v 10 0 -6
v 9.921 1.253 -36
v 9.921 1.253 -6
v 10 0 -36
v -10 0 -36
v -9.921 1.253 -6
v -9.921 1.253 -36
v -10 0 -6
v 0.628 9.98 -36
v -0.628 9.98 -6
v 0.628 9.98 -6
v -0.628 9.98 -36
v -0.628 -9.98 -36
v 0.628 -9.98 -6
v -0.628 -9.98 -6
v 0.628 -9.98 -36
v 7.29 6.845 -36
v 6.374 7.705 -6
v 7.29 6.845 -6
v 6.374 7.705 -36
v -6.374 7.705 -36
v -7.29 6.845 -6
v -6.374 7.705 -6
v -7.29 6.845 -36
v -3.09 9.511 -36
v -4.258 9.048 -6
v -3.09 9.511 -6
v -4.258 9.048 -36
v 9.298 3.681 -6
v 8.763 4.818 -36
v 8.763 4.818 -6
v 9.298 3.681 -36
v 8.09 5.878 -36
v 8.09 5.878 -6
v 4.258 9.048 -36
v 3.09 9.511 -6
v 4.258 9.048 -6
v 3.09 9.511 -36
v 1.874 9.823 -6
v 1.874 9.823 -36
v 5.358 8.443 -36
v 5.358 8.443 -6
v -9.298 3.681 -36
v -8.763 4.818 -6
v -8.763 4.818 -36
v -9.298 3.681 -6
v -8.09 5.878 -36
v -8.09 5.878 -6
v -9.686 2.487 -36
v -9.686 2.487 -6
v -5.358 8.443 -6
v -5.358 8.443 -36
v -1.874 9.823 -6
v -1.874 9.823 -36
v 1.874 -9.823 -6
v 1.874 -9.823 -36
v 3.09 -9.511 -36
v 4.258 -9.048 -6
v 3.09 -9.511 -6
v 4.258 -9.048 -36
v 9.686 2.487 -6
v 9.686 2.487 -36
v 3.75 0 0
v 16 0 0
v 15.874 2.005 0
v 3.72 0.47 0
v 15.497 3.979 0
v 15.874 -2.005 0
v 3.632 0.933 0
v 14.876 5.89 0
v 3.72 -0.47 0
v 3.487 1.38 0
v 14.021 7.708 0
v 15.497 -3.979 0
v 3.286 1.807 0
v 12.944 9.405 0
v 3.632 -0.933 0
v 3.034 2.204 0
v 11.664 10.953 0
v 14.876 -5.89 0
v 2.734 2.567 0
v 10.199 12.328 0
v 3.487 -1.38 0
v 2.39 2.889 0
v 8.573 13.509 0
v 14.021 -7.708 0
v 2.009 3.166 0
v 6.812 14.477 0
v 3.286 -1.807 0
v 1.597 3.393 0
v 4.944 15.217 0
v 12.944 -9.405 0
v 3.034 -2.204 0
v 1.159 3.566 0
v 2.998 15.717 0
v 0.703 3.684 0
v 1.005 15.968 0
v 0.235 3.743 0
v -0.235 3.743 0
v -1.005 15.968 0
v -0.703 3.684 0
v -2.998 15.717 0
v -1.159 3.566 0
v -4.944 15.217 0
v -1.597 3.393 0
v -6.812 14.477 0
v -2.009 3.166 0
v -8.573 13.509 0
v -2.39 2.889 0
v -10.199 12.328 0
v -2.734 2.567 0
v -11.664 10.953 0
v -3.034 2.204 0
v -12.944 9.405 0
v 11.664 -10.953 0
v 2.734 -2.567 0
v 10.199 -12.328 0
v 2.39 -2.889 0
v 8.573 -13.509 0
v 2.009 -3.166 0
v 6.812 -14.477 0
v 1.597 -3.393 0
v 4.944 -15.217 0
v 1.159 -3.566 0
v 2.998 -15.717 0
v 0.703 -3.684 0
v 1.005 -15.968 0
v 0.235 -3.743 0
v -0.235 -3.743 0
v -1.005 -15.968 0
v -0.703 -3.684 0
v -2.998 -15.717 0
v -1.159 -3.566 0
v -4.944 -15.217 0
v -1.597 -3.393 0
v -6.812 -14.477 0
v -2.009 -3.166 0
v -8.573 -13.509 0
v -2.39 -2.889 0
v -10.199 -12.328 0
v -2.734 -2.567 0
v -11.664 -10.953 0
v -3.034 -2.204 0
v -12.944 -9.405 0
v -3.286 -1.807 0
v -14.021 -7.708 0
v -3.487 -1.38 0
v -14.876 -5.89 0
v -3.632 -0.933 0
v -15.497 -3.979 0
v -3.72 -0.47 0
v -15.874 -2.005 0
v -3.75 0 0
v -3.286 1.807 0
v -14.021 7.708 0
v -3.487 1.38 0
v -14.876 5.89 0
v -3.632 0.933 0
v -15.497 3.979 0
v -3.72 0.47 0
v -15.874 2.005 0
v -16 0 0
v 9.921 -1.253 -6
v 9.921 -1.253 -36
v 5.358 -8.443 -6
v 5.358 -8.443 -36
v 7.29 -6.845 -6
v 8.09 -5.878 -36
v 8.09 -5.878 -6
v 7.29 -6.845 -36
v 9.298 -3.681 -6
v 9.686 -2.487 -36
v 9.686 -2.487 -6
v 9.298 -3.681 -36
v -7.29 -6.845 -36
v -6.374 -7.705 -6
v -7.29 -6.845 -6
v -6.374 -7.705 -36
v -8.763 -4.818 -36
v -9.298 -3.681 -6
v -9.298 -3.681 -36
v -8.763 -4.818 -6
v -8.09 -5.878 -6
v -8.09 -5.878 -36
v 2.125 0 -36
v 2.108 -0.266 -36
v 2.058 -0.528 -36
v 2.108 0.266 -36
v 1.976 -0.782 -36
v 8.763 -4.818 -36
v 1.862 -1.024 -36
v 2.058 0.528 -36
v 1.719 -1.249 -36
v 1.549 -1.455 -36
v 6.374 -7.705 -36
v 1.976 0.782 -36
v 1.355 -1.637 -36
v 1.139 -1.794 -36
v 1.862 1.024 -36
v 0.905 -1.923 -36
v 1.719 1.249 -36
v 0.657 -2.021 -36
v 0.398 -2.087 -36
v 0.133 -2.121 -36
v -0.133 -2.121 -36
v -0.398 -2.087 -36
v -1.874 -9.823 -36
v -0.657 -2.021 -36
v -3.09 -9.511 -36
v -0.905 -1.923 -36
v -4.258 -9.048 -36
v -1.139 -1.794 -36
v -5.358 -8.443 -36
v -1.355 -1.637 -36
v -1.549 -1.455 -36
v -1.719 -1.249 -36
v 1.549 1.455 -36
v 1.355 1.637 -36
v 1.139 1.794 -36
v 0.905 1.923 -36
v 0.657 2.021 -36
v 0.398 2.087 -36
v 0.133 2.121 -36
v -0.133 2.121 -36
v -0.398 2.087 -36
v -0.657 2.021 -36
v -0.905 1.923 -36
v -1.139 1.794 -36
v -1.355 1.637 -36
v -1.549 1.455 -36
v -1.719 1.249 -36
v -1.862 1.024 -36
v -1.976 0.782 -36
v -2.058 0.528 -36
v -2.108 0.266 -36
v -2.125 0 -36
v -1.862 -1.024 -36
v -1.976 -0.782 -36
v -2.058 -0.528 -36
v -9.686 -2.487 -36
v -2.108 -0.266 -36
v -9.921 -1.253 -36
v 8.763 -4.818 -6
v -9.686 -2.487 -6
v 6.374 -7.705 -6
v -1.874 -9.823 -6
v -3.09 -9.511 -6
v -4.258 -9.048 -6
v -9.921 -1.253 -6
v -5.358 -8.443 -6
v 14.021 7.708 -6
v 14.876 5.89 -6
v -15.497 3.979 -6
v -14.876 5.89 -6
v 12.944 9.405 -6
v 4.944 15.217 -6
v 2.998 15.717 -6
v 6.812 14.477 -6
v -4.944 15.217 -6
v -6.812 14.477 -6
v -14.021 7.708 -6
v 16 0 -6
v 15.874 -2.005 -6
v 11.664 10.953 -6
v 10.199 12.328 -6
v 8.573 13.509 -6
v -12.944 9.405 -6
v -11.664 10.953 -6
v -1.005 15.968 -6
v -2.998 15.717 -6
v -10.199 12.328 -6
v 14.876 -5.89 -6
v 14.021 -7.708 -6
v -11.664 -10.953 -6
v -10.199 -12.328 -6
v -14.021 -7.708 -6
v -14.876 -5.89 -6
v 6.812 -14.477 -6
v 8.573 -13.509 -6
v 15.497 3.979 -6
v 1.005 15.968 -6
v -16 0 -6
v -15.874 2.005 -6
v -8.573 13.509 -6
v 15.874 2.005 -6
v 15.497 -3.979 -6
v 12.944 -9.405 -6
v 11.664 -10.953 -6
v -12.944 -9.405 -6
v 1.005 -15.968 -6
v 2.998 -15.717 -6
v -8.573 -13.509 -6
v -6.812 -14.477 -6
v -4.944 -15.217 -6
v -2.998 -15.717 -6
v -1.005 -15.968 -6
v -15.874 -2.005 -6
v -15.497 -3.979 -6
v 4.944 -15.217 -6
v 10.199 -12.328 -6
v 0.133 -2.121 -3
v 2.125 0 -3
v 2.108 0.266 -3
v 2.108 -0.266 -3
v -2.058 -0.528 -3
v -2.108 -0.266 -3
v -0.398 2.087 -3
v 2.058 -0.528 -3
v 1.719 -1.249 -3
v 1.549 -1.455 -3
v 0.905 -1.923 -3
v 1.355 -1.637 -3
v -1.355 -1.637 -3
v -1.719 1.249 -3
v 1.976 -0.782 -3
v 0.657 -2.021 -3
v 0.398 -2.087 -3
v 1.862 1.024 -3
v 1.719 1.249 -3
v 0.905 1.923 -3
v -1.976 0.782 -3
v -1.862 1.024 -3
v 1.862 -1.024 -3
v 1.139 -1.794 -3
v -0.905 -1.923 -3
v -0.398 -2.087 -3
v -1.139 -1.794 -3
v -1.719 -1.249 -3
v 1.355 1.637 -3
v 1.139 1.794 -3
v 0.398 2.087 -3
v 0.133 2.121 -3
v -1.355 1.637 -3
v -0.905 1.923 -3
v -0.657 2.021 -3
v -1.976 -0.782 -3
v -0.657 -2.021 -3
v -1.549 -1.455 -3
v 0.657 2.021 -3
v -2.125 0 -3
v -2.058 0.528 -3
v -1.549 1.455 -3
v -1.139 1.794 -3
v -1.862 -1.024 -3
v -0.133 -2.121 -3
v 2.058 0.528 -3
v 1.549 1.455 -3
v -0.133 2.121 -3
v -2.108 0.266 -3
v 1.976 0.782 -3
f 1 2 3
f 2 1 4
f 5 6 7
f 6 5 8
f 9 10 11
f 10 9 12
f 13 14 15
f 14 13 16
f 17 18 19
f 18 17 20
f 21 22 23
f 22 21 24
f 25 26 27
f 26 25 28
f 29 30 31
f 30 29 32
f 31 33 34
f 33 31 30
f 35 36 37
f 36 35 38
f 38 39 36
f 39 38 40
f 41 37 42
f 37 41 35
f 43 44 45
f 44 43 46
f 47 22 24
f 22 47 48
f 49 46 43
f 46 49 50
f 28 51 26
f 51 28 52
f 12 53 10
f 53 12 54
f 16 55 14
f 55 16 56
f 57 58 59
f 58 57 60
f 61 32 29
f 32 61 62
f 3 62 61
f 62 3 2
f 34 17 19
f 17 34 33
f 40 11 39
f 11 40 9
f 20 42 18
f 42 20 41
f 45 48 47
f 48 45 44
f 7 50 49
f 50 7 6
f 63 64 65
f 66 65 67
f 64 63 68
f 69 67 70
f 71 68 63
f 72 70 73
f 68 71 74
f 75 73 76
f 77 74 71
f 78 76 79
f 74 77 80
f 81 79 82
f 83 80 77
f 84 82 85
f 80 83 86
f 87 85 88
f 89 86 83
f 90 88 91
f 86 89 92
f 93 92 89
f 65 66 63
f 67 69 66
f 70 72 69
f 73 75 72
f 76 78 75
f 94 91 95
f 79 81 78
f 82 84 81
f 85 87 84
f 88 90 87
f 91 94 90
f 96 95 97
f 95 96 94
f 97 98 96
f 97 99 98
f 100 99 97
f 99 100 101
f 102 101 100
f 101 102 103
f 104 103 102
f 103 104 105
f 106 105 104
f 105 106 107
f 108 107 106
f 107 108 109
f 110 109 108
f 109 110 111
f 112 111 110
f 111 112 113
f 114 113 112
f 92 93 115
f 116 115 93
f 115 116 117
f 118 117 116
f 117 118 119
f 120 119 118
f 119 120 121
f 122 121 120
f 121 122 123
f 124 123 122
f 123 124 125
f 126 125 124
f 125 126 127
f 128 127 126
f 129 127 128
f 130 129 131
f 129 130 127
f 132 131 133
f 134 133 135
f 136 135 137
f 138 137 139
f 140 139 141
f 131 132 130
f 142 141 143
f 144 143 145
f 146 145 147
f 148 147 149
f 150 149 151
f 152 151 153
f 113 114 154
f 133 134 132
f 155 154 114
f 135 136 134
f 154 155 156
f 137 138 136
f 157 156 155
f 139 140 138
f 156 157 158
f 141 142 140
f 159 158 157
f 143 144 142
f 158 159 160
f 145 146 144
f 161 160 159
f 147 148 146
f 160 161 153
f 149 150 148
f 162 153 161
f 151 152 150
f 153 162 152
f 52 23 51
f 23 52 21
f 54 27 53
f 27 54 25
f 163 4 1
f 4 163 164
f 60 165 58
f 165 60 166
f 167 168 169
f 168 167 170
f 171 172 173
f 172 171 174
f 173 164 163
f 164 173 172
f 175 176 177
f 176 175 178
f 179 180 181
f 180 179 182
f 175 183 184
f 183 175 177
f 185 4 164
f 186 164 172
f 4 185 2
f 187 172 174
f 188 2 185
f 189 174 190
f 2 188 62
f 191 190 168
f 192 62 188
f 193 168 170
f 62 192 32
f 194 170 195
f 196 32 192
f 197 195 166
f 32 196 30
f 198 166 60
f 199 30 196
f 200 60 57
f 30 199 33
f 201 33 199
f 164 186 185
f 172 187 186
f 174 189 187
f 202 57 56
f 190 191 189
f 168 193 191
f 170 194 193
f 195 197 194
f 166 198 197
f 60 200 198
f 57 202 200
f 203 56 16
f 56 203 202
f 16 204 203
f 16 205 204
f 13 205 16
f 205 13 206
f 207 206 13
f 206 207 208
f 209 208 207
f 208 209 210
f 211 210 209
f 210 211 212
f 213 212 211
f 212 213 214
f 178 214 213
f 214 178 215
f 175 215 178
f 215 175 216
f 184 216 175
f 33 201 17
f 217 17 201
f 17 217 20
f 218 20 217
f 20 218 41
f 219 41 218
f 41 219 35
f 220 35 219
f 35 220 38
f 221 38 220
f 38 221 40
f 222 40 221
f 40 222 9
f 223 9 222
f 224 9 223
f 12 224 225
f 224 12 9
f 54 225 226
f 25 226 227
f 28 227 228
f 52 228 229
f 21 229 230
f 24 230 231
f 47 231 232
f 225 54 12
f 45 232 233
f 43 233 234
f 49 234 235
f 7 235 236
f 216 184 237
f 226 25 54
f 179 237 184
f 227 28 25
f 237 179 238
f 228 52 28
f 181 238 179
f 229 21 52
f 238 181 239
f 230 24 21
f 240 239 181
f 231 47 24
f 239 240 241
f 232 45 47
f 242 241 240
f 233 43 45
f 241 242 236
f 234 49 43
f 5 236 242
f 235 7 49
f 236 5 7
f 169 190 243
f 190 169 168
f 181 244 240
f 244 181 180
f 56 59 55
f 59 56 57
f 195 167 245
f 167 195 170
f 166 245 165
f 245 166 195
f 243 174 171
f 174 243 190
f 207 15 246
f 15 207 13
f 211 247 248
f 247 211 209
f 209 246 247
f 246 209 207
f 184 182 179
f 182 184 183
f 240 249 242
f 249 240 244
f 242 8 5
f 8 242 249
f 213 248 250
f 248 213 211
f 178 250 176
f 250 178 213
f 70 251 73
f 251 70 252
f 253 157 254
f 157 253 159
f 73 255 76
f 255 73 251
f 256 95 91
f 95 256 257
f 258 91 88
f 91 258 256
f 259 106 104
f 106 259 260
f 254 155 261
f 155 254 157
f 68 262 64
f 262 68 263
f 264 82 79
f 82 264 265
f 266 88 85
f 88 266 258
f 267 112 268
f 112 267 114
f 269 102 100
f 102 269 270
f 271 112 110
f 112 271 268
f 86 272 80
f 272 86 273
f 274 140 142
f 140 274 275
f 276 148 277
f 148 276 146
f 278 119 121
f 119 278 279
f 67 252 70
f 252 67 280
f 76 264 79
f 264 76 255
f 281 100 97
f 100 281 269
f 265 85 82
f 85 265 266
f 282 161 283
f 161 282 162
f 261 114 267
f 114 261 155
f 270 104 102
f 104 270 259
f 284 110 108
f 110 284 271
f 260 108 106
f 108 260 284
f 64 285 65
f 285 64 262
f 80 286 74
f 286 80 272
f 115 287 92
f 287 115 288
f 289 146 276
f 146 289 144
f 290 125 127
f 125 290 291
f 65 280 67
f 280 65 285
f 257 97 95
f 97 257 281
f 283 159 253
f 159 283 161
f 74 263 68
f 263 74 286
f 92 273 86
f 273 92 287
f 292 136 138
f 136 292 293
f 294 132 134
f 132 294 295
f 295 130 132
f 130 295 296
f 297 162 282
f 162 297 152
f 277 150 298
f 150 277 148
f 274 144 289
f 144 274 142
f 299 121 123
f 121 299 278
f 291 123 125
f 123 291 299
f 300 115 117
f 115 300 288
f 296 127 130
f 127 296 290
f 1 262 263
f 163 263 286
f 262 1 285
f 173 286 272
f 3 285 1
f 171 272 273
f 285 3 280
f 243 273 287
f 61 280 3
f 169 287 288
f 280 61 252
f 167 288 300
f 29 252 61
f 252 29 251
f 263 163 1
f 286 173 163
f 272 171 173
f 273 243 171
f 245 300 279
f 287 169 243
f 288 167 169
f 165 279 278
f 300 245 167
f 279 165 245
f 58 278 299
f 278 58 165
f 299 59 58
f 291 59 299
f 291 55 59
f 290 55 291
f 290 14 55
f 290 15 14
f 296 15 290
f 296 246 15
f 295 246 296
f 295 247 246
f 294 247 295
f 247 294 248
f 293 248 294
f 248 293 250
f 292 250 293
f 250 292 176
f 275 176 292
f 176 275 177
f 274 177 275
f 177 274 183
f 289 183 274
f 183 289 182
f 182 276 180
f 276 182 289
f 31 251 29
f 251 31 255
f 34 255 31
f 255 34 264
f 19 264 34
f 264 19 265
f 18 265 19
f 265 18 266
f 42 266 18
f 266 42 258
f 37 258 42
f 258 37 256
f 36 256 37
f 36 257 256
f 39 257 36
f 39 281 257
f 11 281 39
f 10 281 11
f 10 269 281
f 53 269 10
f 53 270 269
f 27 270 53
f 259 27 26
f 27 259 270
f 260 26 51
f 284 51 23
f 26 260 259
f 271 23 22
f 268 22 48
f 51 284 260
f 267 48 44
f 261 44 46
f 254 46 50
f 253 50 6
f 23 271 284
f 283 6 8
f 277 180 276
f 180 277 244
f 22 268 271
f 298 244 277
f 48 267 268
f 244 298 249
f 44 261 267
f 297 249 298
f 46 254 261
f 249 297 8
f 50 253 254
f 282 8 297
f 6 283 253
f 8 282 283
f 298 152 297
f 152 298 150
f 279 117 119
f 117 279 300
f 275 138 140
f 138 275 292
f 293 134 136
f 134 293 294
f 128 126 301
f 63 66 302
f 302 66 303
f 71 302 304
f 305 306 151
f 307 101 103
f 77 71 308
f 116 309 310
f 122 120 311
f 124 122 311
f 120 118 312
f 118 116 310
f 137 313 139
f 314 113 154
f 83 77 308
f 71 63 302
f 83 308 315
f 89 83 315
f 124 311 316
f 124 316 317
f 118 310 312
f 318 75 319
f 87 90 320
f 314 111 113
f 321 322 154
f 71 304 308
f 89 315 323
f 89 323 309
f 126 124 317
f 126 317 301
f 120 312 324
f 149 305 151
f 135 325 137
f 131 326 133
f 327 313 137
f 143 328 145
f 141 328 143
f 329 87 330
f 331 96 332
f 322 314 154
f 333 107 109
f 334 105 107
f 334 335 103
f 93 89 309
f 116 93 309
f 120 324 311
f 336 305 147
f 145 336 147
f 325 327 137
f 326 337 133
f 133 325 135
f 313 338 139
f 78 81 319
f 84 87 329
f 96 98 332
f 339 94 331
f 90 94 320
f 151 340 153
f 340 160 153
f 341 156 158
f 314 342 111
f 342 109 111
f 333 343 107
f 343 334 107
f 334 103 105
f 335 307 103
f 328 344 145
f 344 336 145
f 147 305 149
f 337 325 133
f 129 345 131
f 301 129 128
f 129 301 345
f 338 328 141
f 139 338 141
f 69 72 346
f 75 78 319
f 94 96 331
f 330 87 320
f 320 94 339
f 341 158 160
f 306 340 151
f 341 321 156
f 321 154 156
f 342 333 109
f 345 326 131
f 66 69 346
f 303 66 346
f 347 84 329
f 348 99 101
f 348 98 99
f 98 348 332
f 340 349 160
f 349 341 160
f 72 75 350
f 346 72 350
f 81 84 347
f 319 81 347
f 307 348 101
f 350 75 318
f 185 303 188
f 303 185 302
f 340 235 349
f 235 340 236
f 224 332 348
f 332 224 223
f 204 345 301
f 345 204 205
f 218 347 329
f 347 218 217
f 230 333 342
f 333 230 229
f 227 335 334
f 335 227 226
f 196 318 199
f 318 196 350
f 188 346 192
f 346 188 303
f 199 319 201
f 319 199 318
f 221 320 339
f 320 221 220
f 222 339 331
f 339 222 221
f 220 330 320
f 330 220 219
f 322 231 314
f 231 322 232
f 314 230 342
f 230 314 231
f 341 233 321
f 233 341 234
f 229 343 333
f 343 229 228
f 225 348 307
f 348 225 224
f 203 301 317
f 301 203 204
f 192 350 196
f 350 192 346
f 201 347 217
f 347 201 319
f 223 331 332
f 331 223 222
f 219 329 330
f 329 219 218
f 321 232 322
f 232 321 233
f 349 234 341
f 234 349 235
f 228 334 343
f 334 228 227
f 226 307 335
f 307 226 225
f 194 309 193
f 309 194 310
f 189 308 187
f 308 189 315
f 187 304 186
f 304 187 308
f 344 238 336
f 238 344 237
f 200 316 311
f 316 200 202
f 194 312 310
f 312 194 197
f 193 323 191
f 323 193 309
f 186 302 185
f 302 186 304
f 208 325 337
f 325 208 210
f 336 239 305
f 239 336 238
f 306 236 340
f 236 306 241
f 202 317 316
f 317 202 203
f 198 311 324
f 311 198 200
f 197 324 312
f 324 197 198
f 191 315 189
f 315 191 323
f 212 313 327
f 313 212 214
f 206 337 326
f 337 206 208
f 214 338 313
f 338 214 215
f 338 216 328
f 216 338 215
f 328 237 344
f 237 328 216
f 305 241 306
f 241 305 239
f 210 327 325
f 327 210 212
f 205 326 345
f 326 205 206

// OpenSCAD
$fn = 50;


difference() {
	union() {
		translate(v = [0, 0, -36.0000000000]) {
			cylinder(h = 36, r = 10.0000000000);
		}
		translate(v = [0, 0, -6.0000000000]) {
			cylinder(h = 6, r = 16.0000000000);
		}
	}
	union() {
		translate(v = [0, 0, 0]) {
			rotate(a = [0, 0, 0]) {
				difference() {
					union() {
						#translate(v = [0, 0, -36.0000000000]) {
							cylinder(h = 36, r = 2.0000000000);
						}
						#translate(v = [0, 0, -3]) {
							cylinder(h = 3, r = 10.0000000000, r1 = 2.1250000000, r2 = 3.7500000000);
						}
						#translate(v = [0, 0, -36.0000000000]) {
							cylinder(h = 36, r = 2.1250000000);
						}
						#translate(v = [0, 0, -36.0000000000]) {
							cylinder(h = 36, r = 2.0000000000);
						}
					}
					union();
				}
			}
		}
	}
}
